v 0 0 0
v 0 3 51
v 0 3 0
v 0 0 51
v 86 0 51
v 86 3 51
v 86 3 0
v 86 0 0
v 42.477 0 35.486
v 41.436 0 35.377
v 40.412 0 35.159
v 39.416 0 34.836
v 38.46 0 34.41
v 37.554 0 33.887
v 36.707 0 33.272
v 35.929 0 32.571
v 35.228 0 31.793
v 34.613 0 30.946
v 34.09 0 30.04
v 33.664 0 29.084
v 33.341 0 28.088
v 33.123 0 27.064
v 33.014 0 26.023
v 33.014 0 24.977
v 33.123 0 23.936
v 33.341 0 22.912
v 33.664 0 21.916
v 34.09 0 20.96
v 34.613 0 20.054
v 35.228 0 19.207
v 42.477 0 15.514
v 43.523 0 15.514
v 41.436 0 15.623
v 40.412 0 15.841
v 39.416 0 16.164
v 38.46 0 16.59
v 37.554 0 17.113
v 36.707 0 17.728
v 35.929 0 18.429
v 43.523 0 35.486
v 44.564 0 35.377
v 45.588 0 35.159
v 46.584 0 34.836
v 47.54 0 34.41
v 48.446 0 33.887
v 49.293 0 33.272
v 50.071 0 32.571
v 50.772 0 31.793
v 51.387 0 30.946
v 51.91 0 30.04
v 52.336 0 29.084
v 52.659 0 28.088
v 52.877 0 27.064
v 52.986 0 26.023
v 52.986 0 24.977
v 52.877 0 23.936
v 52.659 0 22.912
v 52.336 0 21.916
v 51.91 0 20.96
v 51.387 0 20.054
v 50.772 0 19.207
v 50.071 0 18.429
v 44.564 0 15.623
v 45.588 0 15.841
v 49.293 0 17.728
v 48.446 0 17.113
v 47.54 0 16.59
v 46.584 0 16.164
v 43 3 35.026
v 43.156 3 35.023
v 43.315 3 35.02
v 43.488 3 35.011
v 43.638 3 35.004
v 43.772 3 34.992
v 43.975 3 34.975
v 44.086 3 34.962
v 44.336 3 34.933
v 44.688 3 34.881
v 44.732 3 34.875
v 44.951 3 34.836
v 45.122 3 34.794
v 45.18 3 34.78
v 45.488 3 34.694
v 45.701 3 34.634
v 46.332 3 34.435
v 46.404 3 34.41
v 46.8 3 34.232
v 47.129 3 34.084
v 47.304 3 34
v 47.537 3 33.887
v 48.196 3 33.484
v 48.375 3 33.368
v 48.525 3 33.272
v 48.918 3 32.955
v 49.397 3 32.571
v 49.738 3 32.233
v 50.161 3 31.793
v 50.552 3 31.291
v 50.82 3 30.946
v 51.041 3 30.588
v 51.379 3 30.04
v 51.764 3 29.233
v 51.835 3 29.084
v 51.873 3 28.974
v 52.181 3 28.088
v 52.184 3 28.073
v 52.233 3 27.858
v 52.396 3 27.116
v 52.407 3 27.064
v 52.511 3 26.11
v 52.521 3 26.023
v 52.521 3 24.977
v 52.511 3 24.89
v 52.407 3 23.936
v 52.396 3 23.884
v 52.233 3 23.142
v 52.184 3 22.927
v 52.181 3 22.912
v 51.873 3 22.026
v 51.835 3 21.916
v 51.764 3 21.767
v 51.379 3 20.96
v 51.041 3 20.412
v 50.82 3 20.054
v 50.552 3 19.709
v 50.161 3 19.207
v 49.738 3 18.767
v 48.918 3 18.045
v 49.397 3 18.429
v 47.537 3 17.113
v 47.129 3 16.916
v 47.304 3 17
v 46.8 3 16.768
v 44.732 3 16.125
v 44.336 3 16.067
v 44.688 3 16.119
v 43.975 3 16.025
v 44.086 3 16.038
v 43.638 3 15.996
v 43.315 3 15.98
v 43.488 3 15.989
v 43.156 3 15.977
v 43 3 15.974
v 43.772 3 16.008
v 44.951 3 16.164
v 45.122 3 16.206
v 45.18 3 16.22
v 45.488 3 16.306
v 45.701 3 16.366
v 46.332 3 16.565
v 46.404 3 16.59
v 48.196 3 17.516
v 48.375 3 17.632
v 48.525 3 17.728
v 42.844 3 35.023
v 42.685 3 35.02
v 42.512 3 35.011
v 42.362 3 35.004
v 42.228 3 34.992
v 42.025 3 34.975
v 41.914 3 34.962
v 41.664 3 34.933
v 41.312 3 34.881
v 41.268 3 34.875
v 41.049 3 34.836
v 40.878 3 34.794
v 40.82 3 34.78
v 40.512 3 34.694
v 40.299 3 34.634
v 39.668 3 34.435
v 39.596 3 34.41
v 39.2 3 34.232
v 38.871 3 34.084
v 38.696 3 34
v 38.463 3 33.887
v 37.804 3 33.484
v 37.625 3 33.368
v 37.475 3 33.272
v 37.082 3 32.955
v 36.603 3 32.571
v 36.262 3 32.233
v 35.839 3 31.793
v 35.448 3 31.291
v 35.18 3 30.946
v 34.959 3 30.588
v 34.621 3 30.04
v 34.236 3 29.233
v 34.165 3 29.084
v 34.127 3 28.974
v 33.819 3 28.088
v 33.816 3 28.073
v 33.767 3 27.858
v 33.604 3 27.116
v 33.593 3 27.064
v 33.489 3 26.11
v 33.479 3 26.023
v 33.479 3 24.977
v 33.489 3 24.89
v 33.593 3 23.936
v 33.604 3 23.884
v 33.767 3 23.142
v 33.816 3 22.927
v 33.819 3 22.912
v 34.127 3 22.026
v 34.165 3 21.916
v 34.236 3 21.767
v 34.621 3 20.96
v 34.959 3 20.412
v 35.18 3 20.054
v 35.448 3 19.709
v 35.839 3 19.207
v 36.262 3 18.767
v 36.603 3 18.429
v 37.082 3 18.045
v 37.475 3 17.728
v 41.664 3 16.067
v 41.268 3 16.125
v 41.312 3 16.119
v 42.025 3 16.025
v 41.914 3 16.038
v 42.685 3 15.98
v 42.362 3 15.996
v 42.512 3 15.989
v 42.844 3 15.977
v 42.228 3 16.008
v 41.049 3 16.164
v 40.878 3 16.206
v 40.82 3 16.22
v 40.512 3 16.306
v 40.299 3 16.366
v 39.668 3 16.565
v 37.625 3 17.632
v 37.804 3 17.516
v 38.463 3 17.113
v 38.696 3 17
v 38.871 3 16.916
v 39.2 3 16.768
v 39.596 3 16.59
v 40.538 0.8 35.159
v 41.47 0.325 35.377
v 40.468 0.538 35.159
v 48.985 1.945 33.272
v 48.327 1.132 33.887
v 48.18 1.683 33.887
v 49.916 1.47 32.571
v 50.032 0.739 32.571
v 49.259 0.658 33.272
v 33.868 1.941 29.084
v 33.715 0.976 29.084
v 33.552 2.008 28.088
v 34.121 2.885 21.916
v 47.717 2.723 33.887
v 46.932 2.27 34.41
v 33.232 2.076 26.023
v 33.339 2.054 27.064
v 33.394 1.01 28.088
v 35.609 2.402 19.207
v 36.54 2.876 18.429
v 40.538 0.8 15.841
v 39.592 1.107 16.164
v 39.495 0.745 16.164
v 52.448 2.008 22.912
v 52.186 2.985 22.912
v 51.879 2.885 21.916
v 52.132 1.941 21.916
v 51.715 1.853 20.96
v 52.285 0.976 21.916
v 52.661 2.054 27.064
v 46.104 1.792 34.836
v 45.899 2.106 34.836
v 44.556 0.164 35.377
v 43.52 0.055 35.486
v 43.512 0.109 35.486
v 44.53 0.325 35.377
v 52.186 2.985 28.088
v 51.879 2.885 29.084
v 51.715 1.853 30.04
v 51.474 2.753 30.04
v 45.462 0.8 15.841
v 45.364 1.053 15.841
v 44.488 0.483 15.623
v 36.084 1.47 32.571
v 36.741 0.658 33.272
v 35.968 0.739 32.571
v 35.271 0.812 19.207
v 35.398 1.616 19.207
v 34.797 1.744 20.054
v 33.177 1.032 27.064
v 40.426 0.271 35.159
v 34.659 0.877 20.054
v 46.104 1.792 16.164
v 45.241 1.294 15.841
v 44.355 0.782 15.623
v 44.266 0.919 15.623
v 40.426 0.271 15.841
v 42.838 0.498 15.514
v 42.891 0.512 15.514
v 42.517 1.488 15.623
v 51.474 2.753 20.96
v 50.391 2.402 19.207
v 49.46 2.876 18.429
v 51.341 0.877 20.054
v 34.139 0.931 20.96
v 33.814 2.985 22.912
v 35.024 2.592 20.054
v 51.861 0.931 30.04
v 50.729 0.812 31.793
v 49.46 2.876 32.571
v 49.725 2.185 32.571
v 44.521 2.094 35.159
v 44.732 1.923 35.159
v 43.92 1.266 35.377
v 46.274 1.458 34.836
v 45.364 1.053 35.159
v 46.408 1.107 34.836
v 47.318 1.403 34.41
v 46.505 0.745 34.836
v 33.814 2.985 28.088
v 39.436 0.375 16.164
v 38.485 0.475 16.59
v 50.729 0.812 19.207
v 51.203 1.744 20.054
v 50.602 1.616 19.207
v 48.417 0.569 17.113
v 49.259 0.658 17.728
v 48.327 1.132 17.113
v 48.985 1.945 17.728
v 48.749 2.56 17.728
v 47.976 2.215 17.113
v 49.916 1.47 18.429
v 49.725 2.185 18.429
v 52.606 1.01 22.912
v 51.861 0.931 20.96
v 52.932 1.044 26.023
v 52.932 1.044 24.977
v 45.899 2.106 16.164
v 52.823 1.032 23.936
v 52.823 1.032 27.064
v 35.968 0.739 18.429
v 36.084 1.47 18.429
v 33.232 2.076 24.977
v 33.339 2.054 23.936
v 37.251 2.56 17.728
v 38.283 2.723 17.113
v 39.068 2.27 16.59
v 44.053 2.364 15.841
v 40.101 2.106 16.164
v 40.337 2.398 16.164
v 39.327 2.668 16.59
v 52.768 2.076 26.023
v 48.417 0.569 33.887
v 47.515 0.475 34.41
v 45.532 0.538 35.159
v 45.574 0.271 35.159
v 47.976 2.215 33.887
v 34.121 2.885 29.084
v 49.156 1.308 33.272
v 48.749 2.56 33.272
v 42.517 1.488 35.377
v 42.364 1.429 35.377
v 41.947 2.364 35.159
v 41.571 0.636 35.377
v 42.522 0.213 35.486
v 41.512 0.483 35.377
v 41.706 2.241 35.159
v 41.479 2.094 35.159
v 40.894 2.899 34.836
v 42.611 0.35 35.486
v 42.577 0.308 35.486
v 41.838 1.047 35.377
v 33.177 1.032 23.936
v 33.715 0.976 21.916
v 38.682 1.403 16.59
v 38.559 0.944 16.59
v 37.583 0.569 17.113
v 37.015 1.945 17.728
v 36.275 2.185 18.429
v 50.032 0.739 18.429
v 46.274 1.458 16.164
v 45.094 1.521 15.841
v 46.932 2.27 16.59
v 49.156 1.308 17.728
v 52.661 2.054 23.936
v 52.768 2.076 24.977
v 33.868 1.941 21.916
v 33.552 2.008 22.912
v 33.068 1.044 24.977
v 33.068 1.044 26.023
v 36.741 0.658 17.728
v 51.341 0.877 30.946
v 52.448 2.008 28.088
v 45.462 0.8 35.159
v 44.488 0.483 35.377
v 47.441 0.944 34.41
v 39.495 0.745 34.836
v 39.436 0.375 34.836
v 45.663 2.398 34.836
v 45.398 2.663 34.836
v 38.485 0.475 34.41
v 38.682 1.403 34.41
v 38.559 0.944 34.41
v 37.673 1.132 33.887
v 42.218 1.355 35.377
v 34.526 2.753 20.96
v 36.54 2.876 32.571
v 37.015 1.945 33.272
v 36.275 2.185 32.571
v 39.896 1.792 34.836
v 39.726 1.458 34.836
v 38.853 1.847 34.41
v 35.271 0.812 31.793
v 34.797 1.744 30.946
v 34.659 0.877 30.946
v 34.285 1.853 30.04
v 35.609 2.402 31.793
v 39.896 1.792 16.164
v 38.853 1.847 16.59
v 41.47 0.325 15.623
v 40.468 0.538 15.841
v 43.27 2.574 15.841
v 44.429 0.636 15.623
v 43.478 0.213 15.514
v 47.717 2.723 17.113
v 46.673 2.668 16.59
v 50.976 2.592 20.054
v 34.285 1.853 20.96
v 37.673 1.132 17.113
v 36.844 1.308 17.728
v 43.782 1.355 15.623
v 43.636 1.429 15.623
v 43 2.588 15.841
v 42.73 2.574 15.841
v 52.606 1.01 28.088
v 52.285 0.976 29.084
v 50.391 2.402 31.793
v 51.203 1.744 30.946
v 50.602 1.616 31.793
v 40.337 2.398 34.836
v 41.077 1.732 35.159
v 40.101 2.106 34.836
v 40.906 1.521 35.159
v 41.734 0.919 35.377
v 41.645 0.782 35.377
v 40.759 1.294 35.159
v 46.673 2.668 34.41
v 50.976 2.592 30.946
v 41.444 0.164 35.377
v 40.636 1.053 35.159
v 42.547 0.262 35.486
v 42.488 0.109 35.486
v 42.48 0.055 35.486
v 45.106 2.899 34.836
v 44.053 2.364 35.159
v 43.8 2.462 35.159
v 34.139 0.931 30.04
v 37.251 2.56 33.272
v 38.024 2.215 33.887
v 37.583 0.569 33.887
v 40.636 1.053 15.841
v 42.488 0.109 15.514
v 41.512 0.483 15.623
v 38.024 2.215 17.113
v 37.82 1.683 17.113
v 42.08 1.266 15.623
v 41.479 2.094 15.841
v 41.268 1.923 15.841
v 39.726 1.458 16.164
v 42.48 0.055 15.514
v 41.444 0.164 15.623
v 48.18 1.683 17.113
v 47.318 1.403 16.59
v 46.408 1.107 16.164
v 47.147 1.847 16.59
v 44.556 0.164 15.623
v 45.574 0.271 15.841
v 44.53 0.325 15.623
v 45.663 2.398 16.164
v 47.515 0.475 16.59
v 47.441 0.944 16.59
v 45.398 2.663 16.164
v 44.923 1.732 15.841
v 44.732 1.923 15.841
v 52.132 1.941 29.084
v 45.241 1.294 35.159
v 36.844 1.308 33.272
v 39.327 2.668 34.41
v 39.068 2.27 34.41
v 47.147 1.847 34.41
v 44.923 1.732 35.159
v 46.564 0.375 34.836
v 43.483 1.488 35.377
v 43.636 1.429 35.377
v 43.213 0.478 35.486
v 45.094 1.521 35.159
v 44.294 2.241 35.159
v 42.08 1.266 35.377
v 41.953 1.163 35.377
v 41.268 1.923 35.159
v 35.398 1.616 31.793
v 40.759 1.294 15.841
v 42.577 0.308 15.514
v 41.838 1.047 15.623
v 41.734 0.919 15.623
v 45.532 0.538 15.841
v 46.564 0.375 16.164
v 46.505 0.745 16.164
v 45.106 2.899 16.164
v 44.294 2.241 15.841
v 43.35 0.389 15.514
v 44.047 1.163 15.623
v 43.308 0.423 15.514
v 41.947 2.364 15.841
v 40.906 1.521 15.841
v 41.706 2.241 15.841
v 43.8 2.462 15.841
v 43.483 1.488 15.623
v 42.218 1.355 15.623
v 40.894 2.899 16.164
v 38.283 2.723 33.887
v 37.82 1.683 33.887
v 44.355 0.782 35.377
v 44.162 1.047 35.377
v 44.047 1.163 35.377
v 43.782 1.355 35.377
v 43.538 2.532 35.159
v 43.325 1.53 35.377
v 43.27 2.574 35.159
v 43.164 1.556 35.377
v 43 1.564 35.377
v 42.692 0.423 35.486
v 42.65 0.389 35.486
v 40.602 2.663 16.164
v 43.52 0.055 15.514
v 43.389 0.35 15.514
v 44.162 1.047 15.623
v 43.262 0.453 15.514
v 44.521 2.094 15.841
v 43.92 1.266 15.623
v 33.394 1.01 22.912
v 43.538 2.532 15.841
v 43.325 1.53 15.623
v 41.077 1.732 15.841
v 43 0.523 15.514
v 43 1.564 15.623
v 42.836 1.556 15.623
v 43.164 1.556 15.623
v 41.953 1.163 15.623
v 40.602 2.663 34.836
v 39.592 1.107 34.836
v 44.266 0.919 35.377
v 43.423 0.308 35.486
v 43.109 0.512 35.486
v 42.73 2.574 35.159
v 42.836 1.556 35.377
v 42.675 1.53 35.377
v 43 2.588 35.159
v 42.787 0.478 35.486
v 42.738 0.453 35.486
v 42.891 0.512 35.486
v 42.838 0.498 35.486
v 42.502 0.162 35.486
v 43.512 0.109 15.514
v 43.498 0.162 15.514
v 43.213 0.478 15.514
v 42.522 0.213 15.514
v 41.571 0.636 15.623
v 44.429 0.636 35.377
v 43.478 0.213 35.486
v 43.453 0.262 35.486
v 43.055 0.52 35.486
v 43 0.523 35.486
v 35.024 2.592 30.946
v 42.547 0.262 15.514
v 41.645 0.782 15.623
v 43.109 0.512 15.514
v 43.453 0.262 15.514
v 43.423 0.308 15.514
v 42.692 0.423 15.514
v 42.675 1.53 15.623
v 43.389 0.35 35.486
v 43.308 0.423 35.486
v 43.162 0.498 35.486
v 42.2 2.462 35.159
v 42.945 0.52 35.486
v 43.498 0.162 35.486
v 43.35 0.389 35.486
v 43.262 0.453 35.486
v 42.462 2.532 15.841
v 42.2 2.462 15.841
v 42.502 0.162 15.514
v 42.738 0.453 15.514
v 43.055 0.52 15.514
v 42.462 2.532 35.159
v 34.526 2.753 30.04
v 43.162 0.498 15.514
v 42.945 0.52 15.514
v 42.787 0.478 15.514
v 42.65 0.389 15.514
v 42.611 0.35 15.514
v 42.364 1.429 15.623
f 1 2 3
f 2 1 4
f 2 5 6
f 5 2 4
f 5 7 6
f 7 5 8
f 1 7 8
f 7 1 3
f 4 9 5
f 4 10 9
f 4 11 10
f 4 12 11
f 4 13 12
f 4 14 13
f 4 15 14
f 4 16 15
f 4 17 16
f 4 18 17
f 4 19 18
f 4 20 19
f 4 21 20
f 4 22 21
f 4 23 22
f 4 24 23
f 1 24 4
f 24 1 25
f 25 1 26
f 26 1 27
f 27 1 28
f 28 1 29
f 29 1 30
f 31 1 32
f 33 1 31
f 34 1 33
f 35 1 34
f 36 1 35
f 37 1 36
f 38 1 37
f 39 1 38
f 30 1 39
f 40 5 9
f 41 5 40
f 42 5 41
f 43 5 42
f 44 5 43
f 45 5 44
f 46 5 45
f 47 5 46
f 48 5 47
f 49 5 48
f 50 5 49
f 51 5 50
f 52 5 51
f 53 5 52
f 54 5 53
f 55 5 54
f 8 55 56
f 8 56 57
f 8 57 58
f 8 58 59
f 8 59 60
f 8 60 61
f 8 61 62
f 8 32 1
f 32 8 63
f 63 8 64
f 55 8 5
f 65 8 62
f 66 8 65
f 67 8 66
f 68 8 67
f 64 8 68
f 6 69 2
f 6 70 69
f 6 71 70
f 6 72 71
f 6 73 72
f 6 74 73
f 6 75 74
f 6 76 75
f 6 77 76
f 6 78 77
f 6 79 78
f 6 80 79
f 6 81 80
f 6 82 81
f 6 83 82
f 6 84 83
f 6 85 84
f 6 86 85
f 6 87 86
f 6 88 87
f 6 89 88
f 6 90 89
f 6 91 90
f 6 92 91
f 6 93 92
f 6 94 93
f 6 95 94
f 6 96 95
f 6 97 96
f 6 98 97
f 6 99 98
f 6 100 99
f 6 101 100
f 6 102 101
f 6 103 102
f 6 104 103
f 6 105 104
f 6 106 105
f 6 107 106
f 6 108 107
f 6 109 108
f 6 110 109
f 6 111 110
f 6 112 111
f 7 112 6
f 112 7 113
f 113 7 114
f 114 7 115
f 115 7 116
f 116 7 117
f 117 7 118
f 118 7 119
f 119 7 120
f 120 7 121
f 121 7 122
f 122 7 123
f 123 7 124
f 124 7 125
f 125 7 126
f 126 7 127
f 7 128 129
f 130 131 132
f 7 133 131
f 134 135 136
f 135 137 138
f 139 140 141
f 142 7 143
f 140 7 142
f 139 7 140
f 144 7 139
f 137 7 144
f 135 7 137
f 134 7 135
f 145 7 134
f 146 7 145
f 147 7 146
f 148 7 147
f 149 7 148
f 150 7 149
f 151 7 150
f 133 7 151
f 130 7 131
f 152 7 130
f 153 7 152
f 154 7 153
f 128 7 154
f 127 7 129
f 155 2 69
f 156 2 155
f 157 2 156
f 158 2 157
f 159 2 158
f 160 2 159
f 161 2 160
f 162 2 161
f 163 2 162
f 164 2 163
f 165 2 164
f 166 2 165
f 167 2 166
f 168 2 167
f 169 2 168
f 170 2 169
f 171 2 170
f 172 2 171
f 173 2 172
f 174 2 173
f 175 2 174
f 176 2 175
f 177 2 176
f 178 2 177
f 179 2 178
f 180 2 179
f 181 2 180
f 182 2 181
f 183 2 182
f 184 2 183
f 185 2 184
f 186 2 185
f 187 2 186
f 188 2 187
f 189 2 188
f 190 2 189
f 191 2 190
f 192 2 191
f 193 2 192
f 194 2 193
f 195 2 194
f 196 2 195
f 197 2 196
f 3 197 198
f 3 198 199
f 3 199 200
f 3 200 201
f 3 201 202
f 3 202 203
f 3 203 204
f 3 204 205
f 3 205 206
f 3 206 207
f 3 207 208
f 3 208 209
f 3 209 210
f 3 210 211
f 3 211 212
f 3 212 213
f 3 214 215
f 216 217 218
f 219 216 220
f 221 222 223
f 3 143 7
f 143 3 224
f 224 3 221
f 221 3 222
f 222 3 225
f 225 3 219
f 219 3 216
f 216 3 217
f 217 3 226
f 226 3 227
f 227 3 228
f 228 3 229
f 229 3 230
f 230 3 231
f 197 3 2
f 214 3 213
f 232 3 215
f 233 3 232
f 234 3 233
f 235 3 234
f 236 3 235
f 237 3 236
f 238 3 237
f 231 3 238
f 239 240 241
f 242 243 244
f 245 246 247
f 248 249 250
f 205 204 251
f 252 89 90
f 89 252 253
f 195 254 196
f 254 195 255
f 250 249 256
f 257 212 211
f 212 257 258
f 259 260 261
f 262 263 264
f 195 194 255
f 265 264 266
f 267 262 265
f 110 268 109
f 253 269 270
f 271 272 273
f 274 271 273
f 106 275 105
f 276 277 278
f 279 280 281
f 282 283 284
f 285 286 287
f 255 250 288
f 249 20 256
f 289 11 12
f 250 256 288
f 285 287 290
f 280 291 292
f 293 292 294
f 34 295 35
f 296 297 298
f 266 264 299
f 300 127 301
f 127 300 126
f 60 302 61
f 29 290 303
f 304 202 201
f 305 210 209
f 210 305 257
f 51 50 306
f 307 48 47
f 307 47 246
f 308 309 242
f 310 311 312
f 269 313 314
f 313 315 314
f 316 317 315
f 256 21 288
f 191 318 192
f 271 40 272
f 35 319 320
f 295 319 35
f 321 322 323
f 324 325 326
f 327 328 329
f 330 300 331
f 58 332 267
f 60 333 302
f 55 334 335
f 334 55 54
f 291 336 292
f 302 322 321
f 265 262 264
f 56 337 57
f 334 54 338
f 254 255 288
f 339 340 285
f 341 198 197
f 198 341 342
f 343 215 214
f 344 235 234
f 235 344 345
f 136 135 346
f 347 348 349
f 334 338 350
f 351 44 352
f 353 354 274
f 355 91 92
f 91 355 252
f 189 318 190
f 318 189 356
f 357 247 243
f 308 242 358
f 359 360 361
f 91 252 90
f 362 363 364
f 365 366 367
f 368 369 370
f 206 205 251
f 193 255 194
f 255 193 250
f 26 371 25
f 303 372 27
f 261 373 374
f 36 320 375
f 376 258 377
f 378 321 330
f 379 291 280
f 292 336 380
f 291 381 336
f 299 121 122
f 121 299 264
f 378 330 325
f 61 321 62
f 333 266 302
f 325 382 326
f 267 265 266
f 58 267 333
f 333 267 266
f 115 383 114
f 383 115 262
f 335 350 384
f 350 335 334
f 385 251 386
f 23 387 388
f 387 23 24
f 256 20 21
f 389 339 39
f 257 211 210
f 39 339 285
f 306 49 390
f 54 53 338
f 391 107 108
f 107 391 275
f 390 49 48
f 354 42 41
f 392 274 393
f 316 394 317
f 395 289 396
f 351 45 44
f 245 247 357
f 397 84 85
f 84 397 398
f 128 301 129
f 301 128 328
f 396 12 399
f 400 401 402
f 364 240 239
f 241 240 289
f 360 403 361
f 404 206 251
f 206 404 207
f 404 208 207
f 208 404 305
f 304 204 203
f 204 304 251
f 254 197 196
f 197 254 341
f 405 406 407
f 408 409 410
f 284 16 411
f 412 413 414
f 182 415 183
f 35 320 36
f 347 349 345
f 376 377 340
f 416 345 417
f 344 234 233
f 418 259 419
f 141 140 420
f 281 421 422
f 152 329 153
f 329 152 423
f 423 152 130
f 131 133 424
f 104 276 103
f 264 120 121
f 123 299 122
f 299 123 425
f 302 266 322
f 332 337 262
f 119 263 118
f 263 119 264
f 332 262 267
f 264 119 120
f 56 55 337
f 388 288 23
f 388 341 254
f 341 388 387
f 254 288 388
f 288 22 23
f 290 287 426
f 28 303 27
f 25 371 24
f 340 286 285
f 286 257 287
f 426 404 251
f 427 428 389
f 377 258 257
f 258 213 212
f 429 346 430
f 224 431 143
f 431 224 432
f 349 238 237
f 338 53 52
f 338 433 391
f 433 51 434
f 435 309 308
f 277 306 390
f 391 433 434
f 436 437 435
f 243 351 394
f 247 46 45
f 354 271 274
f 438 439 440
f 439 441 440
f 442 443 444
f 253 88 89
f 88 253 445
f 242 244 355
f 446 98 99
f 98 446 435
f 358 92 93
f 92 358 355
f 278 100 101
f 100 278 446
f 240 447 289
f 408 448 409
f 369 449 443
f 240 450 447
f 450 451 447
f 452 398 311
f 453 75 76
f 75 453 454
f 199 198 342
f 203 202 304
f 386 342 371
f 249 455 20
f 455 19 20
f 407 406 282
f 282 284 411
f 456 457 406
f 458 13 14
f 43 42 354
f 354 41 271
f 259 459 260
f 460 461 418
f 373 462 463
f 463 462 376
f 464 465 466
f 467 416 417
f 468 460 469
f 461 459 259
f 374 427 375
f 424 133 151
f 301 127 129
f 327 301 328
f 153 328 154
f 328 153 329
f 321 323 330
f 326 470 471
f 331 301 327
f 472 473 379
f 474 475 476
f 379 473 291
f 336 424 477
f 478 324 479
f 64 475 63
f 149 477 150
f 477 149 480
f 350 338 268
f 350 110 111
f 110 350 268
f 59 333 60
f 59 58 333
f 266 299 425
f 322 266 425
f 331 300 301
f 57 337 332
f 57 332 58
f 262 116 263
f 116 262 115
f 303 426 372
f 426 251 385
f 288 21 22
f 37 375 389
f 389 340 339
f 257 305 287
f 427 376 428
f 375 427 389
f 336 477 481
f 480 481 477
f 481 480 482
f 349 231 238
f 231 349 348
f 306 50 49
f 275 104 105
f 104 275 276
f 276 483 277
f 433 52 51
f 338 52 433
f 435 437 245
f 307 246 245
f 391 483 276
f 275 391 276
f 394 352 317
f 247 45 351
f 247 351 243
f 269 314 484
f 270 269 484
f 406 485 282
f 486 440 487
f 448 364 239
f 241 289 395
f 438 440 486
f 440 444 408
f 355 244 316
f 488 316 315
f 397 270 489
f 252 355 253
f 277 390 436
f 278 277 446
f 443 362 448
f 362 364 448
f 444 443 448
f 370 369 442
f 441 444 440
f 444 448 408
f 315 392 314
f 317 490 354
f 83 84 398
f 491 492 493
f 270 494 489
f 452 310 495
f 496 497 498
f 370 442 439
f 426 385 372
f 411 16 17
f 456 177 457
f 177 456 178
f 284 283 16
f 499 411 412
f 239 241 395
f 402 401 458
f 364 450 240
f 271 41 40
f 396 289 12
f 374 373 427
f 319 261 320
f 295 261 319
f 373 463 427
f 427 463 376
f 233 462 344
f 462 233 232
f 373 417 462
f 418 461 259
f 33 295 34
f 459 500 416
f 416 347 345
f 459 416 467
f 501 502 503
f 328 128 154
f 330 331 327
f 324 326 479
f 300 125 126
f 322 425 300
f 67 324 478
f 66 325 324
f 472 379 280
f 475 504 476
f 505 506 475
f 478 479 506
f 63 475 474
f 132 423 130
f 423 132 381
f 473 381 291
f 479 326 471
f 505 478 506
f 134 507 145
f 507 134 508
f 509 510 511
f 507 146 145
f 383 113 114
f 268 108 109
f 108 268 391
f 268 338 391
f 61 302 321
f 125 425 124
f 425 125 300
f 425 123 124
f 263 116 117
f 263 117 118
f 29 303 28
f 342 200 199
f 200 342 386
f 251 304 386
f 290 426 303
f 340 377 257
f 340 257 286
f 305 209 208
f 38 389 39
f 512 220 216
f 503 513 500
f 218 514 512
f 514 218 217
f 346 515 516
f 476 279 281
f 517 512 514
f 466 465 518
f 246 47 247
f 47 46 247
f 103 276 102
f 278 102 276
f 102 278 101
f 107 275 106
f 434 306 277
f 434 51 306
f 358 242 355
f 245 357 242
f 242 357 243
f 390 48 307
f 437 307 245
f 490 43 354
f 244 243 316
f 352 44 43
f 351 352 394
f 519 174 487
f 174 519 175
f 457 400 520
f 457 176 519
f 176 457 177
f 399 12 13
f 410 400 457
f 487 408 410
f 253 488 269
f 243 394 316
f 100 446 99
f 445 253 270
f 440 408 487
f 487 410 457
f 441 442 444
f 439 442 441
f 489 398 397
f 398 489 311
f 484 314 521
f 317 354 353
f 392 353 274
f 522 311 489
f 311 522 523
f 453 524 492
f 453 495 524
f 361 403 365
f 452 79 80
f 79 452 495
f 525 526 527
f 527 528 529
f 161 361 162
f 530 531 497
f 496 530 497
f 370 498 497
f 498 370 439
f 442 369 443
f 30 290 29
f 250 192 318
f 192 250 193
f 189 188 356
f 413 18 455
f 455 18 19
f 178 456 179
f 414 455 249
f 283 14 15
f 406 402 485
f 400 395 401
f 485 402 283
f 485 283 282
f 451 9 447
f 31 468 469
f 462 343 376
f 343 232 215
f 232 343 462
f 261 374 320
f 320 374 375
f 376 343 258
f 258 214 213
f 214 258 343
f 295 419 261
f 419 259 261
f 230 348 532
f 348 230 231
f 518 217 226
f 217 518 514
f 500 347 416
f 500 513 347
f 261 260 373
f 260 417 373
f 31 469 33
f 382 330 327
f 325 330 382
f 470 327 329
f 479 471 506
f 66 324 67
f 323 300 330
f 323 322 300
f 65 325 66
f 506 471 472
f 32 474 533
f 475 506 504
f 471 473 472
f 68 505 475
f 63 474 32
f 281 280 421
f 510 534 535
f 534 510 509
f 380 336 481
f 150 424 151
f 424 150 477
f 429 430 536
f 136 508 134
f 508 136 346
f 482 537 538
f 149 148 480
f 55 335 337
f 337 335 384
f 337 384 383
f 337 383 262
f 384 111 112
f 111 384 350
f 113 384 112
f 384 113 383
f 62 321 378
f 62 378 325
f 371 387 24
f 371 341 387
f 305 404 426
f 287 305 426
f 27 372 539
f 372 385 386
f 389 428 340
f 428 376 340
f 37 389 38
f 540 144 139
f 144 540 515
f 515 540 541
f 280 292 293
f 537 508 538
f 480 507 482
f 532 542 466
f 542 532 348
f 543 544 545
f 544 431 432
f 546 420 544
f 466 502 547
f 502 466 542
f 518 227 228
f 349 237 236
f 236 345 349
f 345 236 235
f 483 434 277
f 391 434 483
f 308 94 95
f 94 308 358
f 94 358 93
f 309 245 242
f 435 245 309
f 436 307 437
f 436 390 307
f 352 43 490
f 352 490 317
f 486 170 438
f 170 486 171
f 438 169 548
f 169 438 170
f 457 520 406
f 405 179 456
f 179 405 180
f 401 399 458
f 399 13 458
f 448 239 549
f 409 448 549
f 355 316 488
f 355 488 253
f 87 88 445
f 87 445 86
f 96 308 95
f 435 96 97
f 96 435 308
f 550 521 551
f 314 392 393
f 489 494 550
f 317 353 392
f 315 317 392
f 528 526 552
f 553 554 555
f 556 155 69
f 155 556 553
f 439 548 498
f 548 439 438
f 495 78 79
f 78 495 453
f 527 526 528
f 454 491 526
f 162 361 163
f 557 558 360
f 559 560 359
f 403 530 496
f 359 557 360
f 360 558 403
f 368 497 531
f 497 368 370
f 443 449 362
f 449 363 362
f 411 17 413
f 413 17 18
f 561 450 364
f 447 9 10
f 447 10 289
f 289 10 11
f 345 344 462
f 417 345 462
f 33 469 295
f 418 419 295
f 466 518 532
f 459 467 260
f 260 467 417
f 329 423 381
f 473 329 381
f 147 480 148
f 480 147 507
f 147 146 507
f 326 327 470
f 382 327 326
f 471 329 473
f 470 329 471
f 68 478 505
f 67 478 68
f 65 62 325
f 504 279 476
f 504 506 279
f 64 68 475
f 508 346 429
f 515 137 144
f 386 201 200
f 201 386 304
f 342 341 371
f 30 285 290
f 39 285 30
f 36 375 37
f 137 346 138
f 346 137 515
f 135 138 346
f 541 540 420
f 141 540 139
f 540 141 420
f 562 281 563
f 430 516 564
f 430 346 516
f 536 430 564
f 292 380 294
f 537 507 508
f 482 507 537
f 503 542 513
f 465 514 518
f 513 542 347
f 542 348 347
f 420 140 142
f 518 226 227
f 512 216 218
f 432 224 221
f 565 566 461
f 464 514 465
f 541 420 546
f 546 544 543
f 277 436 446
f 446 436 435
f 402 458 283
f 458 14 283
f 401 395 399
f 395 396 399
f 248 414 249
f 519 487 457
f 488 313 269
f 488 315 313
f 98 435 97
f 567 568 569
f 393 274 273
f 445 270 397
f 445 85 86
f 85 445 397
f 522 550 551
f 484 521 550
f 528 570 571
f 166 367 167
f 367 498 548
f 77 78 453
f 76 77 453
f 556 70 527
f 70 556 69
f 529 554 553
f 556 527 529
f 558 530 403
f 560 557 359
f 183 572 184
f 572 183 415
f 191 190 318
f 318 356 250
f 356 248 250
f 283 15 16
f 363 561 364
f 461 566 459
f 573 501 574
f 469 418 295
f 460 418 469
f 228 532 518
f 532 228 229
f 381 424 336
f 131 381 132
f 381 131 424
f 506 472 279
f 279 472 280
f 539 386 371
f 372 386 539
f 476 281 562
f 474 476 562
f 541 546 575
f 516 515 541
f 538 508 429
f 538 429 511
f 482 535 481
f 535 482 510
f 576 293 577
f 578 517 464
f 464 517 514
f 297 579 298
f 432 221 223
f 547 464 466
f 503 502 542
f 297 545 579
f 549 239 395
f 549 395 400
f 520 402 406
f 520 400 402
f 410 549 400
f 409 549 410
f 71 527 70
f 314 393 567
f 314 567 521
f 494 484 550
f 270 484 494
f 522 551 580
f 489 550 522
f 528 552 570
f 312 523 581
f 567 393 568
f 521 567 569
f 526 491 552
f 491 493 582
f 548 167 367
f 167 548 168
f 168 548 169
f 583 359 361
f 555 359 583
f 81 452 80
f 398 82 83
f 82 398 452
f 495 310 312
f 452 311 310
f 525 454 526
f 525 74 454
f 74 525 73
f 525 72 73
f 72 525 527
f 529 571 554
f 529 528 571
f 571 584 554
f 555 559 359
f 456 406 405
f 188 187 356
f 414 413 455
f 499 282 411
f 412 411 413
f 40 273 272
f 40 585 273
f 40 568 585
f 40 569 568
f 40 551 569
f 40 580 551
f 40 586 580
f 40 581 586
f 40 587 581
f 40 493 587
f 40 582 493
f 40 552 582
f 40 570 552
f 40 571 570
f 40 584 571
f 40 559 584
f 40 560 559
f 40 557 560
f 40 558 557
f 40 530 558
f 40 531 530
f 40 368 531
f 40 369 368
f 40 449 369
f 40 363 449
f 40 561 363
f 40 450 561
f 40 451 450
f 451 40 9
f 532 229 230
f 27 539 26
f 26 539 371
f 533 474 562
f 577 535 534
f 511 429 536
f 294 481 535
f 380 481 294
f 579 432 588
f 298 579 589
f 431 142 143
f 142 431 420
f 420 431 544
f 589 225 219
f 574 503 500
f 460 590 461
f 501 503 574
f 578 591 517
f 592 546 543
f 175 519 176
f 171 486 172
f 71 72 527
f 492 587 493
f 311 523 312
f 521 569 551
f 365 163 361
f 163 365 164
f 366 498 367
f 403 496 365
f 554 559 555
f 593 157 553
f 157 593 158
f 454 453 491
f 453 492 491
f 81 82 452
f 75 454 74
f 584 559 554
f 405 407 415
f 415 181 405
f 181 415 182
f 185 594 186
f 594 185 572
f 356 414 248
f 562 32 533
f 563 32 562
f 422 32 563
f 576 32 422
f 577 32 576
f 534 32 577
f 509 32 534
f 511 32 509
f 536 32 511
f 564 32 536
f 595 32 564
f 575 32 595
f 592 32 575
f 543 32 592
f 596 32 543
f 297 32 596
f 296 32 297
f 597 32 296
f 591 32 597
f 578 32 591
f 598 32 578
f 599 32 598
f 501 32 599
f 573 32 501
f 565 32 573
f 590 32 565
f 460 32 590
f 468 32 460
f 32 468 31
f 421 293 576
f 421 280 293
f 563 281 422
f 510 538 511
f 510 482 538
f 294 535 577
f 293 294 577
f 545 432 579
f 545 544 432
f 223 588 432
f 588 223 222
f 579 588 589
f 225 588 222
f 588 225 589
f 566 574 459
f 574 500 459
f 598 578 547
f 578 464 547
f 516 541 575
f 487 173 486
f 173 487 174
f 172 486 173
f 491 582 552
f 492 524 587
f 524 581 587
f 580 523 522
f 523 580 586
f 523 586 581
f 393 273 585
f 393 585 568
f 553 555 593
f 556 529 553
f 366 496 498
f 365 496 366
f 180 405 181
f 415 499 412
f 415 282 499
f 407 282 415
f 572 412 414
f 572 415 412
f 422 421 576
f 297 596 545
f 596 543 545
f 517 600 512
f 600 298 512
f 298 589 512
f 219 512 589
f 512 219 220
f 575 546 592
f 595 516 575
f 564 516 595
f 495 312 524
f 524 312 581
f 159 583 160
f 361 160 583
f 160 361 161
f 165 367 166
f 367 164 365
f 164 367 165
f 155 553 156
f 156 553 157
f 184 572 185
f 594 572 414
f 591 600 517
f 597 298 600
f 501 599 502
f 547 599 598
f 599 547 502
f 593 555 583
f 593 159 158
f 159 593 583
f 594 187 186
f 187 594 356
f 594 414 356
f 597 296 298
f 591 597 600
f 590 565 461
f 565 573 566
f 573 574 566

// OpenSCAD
// file: params.scad
// Ansible widget cases
//
// Params: sets the we want
// -----------------------------------------------------------------------------

// Overall case
CASE_WIDTH = 90;
CASE_LENGTH = 140;
CASE_HEIGHT = 55;
WALL_THICKNESS = 3;
FLOOR_THICKNESS = WALL_THICKNESS;
SEGMENTS = 60;

// -----------------------------------------------------------------------------

// Front door
FRONT_DOOR_THICKNESS = 3;
FRONT_DOOR_INSET = 1;  // how much gap to give
FRONT_DOOR_OFFSET_Y = 4; // how far in from the edge
FRONT_DOOR_WIDTH = CASE_WIDTH - WALL_THICKNESS - FRONT_DOOR_INSET;
FRONT_DOOR_HEIGHT = CASE_HEIGHT - (WALL_THICKNESS * 2) + (FRONT_DOOR_INSET * 2);

// -----------------------------------------------------------------------------

// Pi shelf
SHELF_THICKNESS = WALL_THICKNESS - 1;
SHELF_Y = 52;
SHELF_LENGTH = 40;
SHELF_HEIGHT = 28;
SHELF_PEG_OFFSET_X = 3.5;
SHELF_PEG_OFFSET_Y = 3.0;
SHELF_PEG_HEIGHT = 4;
SHELF_PEG_RADIUS_BASE = 2.5 / 2;
SHELF_PEG_RADIUS_TOP = 1.75 / 2;

// -----------------------------------------------------------------------------

// Lid
LID_THICKNESS = WALL_THICKNESS;
DOCK_BORDER_HEIGHT = 9;
DOCK_BORDER_THICKNESS = 4;
DOCK_INSET = 2;

// Lid ridge
RIDGE_THICKNESS = WALL_THICKNESS * 2;
RIDGE_PEG_HEIGHT = 4;
RIDGE_PEG_RADIUS_BASE = 2.5 / 2;
RIDGE_PEG_RADIUS_TOP = 1.75 / 2;
RIDGE_PEG_RADIUS_HOLE = 2.3 / 2;
RIDGE_PEG_OFFSET = 5;

// -----------------------------------------------------------------------------

// General mount
MOUNT_HEIGHT = 15;
MOUNT_THICKNESS = 3;
MOUNT_SEGMENTS = 360;
GRIP_HEIGHT = 5;
GRIP_THICKNESS = 7;
LABEL_MOUNT_HEIGHT = 1;
LABEL_MOUNT_FONT_SIZE = 6;
LABEL_MOUNT_FONT = "Avenir Pro:style=Bold";

// Selector dock
SELECTOR_DOCK_Y = CASE_LENGTH * .78;
SELECTOR_DOCK_RADIUS = 18;
SELECTOR_DOCK_BORDER_RADIUS = SELECTOR_DOCK_RADIUS + DOCK_BORDER_THICKNESS;
SELECTOR_HOLE_OFFSET = DOCK_BORDER_THICKNESS;
SELECTOR_HOLE_SIZE = SELECTOR_DOCK_RADIUS - SELECTOR_HOLE_OFFSET;
SELECTOR_LABEL_Y = -SELECTOR_DOCK_RADIUS - 2;

// Selector mount
SELECTOR_MOUNT_COLOR = [0.6, 0.6, 0.8];
SELECTOR_MOUNT_OFFSET = 0.5;
SELECTOR_MOUNT_THICKNESS = WALL_THICKNESS;
SELECTOR_MOUNT_RADIUS = SELECTOR_DOCK_RADIUS - SELECTOR_MOUNT_OFFSET;
SELECTOR_HOLE_RADIUS = SELECTOR_MOUNT_RADIUS - SELECTOR_HOLE_OFFSET;

// Widget dock
WIDGET_DOCK_Y = CASE_LENGTH * .15;
WIDGET_DOCK_SIZE = 32;
WIDGET_BORDER_RADIUS = 2.5;
WIDGET_HOLE_OFFSET = DOCK_BORDER_THICKNESS * 2;
WIDGET_HOLE_SIZE = WIDGET_DOCK_SIZE - WIDGET_HOLE_OFFSET;

// Widget mount
WIDGET_MOUNT_COLOR = [0.8, 0.6, 0.6];
WIDGET_MOUNT_OFFSET = 1;
WIDGET_MOUNT_THICKNESS = WALL_THICKNESS;
WIDGET_MOUNT_SIZE = WIDGET_DOCK_SIZE - WIDGET_MOUNT_OFFSET;
WIDGET_MOUNT_HOLE_SIZE = WIDGET_MOUNT_SIZE - WIDGET_HOLE_OFFSET;

// -----------------------------------------------------------------------------

// Pi
PI_COLOR = [0.3, 0.4, 0.3];
PI_Y = SHELF_Y + 5;
PI_WIDTH = 66.04;
PI_LENGTH = 30.48;
PI_DEPTH = 1.5;
PI_HOLE_RADIUS = 2 / 2;
PI_HOLE_OFFSET_X = 3.5;
PI_HOLE_OFFSET_Y = 3.0;

// Battery pack
BATTERY_COLOR = [0.2, 0.2, 0.2];
BATTERY_WIDTH = 68.58;
BATTERY_LENGTH = 96.52;
BATTERY_DEPTH = 22.86;

BATTERY_DIAMETER = 23;

BATTERY_GUIDE_OFFSET_X = -5.5;
BATTERY_GUIDE_WIDTH = 4;
BATTERY_GUIDE_HEIGHT = 4;
BATTERY_GUIDE_LENGTH = CASE_LENGTH * .65;

// -----------------------------------------------------------------------------

// Magnet selector

MAGNET_BOARD_WIDTH = 23;
MAGNET_BOARD_HEIGHT = 21;

MAGNET_HOLE_OFFSET = 2;
MAGNET_HOLE_WIDTH = MAGNET_BOARD_WIDTH - MAGNET_HOLE_OFFSET;
MAGNET_HOLE_LENGTH = 10.5;

MAGNET_BOARD_INSET = 1;
MAGNET_BOARD_INSET_WIDTH = MAGNET_BOARD_WIDTH + MAGNET_BOARD_INSET;
MAGNET_BOARD_INSET_HEIGHT = MAGNET_BOARD_HEIGHT + MAGNET_BOARD_INSET;
MAGNET_BOARD_INSET_DEPTH = 1;

MAGNET_PEG_HEIGHT = 4;
MAGNET_PEG_RADIUS_BASE = 2.5 / 2;
MAGNET_PEG_RADIUS_TOP = 1.75 / 2;
MAGNET_PEG_OFFSET_X = -0.25;
MAGNET_PEG_OFFSET_Y = 0.7;
MAGNET_PEG_OFFSET_Z = -MAGNET_BOARD_INSET;

MAGNET_PEG_HOLE_RADIUS = 2.5 / 2;
MAGNET_PEG_HOLE_OFFSET_X = 1 + MAGNET_PEG_HOLE_RADIUS;
MAGNET_PEG_HOLE_OFFSET_Y = 1 + MAGNET_PEG_HOLE_RADIUS;

// -----------------------------------------------------------------------------

// Light selector

LIGHT_BOARD_WIDTH = 19;
LIGHT_BOARD_HEIGHT = 16;

LIGHT_HOLE_OFFSET = 2;
LIGHT_HOLE_WIDTH = LIGHT_BOARD_WIDTH - LIGHT_HOLE_OFFSET;
LIGHT_HOLE_LENGTH = 8;

LIGHT_BOARD_INSET = 1;
LIGHT_BOARD_INSET_WIDTH = LIGHT_BOARD_WIDTH + LIGHT_BOARD_INSET;
LIGHT_BOARD_INSET_HEIGHT = LIGHT_BOARD_HEIGHT + LIGHT_BOARD_INSET;
LIGHT_BOARD_INSET_DEPTH = 1;

LIGHT_PEG_HEIGHT = 4;
LIGHT_PEG_RADIUS_BASE = 2.5 / 2;
LIGHT_PEG_RADIUS_TOP = 1.75 / 2;
LIGHT_PEG_OFFSET_X = 1.65;
LIGHT_PEG_OFFSET_Y = 3.65;
LIGHT_PEG_OFFSET_Z = -LIGHT_BOARD_INSET;

LIGHT_PEG_HOLE_RADIUS = 2.3 / 2;
LIGHT_PEG_HOLE_OFFSET_X = 1 + LIGHT_PEG_HOLE_RADIUS;
LIGHT_PEG_HOLE_OFFSET_Y = 1.5 + LIGHT_PEG_HOLE_RADIUS;
// main file
// Ansible widget cases
//
// Front: front door with finger hole in it
// -----------------------------------------------------------------------------

include <params.scad>;

// -----------------------------------------------------------------------------

module front() {    
    union() {
        difference() {
			// Front door
            cube([
				// Account for the far wall which we don't go through
				FRONT_DOOR_WIDTH,
				// How thick the door is
				FRONT_DOOR_THICKNESS,
				// How tall the door is (ignore top/bottom walls, do account
				// for the gap)
				FRONT_DOOR_HEIGHT
			]);
            
			// Lazily use a sphere instead of rotating a circle, and put it
			// smack in the middle
            translate([
				// Center it
				FRONT_DOOR_WIDTH / 2,
				0,
				// Center it
				FRONT_DOOR_HEIGHT / 2
			])
				sphere(10, $fn=SEGMENTS);
        }
    }
}

// -----------------------------------------------------------------------------

front();
